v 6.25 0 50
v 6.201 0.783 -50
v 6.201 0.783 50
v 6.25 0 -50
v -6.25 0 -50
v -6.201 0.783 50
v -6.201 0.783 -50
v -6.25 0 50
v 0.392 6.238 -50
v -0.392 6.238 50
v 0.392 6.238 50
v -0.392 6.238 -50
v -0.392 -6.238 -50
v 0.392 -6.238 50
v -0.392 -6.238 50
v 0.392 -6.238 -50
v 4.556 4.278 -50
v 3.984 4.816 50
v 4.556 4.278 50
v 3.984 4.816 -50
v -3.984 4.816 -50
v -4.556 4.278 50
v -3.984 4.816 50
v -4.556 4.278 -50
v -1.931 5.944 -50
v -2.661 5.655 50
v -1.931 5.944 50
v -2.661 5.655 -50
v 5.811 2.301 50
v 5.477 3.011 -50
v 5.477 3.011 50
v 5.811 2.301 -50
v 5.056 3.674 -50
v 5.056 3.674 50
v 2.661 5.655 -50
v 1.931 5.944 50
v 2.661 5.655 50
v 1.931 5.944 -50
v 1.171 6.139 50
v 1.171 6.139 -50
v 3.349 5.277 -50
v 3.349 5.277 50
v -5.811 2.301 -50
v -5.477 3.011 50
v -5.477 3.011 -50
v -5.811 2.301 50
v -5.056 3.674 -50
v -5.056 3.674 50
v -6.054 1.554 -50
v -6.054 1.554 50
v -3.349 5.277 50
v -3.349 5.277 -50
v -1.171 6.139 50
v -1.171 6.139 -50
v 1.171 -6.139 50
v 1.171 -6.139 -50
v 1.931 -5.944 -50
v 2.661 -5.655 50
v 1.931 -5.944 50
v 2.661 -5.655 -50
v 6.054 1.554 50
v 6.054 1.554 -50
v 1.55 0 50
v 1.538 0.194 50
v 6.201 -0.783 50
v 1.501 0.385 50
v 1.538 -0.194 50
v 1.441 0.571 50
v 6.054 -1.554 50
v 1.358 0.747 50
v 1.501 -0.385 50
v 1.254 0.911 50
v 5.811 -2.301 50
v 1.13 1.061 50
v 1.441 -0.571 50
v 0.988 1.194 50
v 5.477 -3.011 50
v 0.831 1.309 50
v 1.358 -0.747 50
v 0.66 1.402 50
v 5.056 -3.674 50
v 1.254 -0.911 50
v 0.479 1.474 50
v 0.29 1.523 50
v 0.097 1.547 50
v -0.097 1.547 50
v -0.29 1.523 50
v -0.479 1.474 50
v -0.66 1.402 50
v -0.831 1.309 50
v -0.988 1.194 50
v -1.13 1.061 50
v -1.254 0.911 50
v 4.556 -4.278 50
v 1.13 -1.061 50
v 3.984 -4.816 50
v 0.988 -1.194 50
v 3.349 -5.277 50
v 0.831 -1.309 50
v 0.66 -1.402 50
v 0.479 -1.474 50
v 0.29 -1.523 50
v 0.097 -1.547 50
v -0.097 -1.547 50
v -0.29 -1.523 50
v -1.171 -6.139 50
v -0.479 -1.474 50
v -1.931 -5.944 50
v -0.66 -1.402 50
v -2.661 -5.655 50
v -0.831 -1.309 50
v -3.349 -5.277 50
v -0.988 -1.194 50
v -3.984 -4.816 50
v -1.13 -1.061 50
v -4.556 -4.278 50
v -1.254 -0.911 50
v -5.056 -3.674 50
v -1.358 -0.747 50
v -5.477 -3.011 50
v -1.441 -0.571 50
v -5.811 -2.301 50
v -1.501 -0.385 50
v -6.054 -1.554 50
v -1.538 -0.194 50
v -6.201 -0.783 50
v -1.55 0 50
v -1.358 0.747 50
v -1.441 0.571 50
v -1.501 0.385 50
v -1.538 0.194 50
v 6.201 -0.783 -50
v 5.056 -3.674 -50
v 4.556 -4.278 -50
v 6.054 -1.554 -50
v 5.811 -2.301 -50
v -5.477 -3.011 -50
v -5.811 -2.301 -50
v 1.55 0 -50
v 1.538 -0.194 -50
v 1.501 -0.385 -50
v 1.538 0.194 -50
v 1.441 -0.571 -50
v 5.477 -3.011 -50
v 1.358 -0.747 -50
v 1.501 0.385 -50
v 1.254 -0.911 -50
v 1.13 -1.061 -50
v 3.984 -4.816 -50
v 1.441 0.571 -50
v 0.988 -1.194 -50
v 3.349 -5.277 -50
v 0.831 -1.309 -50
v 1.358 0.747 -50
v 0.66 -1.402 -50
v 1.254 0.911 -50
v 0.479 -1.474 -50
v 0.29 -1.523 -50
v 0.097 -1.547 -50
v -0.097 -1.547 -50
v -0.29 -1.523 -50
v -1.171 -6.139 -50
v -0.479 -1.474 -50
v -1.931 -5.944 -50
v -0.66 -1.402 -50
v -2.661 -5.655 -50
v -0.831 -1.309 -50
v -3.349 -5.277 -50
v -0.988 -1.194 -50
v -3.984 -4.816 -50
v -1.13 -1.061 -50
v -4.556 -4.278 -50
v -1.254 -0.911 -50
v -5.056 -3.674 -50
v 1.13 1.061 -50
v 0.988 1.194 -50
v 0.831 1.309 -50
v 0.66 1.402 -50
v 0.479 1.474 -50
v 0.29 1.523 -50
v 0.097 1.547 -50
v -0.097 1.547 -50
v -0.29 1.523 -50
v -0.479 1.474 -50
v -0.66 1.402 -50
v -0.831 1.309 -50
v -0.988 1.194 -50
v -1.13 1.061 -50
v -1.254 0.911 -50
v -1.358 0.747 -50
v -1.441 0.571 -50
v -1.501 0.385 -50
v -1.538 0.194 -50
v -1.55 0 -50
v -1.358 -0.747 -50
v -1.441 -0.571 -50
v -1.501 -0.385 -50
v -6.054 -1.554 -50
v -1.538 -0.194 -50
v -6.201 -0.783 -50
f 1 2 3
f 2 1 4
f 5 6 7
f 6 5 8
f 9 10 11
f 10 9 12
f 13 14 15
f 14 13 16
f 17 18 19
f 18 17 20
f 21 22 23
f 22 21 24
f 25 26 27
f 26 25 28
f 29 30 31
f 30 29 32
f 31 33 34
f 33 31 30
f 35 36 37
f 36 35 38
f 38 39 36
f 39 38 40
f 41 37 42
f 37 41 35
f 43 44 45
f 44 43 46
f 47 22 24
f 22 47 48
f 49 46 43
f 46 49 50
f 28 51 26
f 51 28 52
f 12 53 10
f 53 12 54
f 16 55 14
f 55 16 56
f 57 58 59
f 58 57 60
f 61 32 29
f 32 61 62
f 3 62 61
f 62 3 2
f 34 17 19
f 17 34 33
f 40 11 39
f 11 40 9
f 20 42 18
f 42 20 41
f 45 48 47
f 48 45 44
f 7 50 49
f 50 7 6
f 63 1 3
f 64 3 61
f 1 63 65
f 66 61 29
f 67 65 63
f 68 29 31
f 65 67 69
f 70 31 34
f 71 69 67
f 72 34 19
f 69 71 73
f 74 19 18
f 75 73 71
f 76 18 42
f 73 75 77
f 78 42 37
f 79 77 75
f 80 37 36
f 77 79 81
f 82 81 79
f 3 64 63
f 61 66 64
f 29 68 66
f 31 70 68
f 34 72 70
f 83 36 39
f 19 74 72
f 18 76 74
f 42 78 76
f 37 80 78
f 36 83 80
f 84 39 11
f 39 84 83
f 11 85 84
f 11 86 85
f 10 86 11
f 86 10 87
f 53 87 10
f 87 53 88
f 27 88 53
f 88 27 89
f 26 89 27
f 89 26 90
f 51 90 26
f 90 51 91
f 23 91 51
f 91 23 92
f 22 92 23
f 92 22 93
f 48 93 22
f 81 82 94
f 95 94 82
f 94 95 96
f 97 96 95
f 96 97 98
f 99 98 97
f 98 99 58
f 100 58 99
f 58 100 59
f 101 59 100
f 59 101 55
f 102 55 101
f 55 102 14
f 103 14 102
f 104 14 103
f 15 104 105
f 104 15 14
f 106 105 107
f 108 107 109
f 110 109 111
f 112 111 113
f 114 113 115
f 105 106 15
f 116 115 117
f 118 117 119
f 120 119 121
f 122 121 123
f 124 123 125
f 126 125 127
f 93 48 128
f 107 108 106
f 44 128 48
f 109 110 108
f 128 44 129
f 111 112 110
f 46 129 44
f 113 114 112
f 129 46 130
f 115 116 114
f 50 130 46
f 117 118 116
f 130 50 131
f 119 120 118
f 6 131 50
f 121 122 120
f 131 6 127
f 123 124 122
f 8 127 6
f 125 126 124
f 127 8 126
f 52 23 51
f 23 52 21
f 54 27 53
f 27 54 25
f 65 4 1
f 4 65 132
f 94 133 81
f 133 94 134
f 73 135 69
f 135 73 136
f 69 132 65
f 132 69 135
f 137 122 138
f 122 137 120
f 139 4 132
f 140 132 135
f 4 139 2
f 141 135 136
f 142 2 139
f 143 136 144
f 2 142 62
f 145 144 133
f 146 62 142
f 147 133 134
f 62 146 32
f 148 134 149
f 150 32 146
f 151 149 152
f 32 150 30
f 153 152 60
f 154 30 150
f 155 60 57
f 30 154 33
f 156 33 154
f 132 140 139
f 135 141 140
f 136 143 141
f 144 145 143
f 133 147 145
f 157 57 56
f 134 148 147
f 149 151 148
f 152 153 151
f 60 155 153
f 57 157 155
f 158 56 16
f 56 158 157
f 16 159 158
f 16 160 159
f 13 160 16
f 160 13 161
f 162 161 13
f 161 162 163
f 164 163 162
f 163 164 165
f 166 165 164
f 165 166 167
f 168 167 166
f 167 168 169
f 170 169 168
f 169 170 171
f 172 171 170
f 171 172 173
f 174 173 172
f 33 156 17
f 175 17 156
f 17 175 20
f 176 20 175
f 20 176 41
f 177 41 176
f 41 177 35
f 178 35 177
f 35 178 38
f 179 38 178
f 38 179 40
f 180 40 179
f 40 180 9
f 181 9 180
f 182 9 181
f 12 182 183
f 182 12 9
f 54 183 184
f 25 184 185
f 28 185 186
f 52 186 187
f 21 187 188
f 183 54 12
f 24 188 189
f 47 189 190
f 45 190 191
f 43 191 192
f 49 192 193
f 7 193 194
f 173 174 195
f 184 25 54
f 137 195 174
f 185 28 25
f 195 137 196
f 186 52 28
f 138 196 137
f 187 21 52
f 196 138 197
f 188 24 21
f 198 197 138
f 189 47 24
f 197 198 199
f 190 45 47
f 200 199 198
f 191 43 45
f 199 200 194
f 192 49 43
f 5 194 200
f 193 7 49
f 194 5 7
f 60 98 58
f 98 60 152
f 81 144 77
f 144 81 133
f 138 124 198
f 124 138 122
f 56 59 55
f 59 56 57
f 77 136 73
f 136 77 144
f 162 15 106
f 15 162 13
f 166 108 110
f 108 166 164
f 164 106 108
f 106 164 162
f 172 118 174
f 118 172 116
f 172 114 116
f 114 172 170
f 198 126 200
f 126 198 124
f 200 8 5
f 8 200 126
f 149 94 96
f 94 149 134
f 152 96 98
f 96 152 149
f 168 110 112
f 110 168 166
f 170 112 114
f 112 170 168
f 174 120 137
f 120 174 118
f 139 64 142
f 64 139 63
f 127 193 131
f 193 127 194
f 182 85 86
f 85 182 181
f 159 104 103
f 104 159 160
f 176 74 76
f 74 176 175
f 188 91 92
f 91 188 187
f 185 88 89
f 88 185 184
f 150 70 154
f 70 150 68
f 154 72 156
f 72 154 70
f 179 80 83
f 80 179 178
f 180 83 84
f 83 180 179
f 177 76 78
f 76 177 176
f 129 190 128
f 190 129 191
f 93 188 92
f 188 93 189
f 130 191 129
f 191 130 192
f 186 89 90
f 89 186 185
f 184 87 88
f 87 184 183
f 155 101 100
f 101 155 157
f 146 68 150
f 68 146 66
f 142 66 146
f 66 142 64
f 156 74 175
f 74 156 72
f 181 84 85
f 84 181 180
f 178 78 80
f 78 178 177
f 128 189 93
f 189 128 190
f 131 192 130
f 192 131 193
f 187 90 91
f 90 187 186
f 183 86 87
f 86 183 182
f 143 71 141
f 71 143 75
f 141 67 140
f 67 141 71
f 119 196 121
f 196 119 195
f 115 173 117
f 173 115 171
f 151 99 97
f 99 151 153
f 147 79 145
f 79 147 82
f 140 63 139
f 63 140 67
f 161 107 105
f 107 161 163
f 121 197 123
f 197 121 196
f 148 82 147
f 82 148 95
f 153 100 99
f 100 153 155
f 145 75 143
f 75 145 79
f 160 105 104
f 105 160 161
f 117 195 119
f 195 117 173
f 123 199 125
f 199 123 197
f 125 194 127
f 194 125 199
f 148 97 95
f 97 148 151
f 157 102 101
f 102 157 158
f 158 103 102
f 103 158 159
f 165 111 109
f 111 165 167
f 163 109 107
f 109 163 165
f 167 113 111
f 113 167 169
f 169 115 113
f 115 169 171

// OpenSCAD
$fn = 50;


difference() {
	union() {
		translate(v = [0, 0, -50.0000000000]) {
			cylinder(h = 100, r = 6.2500000000);
		}
	}
	union() {
		translate(v = [0, 0, -100.0000000000]) {
			cylinder(h = 200, r = 1.5500000000);
		}
	}
}
